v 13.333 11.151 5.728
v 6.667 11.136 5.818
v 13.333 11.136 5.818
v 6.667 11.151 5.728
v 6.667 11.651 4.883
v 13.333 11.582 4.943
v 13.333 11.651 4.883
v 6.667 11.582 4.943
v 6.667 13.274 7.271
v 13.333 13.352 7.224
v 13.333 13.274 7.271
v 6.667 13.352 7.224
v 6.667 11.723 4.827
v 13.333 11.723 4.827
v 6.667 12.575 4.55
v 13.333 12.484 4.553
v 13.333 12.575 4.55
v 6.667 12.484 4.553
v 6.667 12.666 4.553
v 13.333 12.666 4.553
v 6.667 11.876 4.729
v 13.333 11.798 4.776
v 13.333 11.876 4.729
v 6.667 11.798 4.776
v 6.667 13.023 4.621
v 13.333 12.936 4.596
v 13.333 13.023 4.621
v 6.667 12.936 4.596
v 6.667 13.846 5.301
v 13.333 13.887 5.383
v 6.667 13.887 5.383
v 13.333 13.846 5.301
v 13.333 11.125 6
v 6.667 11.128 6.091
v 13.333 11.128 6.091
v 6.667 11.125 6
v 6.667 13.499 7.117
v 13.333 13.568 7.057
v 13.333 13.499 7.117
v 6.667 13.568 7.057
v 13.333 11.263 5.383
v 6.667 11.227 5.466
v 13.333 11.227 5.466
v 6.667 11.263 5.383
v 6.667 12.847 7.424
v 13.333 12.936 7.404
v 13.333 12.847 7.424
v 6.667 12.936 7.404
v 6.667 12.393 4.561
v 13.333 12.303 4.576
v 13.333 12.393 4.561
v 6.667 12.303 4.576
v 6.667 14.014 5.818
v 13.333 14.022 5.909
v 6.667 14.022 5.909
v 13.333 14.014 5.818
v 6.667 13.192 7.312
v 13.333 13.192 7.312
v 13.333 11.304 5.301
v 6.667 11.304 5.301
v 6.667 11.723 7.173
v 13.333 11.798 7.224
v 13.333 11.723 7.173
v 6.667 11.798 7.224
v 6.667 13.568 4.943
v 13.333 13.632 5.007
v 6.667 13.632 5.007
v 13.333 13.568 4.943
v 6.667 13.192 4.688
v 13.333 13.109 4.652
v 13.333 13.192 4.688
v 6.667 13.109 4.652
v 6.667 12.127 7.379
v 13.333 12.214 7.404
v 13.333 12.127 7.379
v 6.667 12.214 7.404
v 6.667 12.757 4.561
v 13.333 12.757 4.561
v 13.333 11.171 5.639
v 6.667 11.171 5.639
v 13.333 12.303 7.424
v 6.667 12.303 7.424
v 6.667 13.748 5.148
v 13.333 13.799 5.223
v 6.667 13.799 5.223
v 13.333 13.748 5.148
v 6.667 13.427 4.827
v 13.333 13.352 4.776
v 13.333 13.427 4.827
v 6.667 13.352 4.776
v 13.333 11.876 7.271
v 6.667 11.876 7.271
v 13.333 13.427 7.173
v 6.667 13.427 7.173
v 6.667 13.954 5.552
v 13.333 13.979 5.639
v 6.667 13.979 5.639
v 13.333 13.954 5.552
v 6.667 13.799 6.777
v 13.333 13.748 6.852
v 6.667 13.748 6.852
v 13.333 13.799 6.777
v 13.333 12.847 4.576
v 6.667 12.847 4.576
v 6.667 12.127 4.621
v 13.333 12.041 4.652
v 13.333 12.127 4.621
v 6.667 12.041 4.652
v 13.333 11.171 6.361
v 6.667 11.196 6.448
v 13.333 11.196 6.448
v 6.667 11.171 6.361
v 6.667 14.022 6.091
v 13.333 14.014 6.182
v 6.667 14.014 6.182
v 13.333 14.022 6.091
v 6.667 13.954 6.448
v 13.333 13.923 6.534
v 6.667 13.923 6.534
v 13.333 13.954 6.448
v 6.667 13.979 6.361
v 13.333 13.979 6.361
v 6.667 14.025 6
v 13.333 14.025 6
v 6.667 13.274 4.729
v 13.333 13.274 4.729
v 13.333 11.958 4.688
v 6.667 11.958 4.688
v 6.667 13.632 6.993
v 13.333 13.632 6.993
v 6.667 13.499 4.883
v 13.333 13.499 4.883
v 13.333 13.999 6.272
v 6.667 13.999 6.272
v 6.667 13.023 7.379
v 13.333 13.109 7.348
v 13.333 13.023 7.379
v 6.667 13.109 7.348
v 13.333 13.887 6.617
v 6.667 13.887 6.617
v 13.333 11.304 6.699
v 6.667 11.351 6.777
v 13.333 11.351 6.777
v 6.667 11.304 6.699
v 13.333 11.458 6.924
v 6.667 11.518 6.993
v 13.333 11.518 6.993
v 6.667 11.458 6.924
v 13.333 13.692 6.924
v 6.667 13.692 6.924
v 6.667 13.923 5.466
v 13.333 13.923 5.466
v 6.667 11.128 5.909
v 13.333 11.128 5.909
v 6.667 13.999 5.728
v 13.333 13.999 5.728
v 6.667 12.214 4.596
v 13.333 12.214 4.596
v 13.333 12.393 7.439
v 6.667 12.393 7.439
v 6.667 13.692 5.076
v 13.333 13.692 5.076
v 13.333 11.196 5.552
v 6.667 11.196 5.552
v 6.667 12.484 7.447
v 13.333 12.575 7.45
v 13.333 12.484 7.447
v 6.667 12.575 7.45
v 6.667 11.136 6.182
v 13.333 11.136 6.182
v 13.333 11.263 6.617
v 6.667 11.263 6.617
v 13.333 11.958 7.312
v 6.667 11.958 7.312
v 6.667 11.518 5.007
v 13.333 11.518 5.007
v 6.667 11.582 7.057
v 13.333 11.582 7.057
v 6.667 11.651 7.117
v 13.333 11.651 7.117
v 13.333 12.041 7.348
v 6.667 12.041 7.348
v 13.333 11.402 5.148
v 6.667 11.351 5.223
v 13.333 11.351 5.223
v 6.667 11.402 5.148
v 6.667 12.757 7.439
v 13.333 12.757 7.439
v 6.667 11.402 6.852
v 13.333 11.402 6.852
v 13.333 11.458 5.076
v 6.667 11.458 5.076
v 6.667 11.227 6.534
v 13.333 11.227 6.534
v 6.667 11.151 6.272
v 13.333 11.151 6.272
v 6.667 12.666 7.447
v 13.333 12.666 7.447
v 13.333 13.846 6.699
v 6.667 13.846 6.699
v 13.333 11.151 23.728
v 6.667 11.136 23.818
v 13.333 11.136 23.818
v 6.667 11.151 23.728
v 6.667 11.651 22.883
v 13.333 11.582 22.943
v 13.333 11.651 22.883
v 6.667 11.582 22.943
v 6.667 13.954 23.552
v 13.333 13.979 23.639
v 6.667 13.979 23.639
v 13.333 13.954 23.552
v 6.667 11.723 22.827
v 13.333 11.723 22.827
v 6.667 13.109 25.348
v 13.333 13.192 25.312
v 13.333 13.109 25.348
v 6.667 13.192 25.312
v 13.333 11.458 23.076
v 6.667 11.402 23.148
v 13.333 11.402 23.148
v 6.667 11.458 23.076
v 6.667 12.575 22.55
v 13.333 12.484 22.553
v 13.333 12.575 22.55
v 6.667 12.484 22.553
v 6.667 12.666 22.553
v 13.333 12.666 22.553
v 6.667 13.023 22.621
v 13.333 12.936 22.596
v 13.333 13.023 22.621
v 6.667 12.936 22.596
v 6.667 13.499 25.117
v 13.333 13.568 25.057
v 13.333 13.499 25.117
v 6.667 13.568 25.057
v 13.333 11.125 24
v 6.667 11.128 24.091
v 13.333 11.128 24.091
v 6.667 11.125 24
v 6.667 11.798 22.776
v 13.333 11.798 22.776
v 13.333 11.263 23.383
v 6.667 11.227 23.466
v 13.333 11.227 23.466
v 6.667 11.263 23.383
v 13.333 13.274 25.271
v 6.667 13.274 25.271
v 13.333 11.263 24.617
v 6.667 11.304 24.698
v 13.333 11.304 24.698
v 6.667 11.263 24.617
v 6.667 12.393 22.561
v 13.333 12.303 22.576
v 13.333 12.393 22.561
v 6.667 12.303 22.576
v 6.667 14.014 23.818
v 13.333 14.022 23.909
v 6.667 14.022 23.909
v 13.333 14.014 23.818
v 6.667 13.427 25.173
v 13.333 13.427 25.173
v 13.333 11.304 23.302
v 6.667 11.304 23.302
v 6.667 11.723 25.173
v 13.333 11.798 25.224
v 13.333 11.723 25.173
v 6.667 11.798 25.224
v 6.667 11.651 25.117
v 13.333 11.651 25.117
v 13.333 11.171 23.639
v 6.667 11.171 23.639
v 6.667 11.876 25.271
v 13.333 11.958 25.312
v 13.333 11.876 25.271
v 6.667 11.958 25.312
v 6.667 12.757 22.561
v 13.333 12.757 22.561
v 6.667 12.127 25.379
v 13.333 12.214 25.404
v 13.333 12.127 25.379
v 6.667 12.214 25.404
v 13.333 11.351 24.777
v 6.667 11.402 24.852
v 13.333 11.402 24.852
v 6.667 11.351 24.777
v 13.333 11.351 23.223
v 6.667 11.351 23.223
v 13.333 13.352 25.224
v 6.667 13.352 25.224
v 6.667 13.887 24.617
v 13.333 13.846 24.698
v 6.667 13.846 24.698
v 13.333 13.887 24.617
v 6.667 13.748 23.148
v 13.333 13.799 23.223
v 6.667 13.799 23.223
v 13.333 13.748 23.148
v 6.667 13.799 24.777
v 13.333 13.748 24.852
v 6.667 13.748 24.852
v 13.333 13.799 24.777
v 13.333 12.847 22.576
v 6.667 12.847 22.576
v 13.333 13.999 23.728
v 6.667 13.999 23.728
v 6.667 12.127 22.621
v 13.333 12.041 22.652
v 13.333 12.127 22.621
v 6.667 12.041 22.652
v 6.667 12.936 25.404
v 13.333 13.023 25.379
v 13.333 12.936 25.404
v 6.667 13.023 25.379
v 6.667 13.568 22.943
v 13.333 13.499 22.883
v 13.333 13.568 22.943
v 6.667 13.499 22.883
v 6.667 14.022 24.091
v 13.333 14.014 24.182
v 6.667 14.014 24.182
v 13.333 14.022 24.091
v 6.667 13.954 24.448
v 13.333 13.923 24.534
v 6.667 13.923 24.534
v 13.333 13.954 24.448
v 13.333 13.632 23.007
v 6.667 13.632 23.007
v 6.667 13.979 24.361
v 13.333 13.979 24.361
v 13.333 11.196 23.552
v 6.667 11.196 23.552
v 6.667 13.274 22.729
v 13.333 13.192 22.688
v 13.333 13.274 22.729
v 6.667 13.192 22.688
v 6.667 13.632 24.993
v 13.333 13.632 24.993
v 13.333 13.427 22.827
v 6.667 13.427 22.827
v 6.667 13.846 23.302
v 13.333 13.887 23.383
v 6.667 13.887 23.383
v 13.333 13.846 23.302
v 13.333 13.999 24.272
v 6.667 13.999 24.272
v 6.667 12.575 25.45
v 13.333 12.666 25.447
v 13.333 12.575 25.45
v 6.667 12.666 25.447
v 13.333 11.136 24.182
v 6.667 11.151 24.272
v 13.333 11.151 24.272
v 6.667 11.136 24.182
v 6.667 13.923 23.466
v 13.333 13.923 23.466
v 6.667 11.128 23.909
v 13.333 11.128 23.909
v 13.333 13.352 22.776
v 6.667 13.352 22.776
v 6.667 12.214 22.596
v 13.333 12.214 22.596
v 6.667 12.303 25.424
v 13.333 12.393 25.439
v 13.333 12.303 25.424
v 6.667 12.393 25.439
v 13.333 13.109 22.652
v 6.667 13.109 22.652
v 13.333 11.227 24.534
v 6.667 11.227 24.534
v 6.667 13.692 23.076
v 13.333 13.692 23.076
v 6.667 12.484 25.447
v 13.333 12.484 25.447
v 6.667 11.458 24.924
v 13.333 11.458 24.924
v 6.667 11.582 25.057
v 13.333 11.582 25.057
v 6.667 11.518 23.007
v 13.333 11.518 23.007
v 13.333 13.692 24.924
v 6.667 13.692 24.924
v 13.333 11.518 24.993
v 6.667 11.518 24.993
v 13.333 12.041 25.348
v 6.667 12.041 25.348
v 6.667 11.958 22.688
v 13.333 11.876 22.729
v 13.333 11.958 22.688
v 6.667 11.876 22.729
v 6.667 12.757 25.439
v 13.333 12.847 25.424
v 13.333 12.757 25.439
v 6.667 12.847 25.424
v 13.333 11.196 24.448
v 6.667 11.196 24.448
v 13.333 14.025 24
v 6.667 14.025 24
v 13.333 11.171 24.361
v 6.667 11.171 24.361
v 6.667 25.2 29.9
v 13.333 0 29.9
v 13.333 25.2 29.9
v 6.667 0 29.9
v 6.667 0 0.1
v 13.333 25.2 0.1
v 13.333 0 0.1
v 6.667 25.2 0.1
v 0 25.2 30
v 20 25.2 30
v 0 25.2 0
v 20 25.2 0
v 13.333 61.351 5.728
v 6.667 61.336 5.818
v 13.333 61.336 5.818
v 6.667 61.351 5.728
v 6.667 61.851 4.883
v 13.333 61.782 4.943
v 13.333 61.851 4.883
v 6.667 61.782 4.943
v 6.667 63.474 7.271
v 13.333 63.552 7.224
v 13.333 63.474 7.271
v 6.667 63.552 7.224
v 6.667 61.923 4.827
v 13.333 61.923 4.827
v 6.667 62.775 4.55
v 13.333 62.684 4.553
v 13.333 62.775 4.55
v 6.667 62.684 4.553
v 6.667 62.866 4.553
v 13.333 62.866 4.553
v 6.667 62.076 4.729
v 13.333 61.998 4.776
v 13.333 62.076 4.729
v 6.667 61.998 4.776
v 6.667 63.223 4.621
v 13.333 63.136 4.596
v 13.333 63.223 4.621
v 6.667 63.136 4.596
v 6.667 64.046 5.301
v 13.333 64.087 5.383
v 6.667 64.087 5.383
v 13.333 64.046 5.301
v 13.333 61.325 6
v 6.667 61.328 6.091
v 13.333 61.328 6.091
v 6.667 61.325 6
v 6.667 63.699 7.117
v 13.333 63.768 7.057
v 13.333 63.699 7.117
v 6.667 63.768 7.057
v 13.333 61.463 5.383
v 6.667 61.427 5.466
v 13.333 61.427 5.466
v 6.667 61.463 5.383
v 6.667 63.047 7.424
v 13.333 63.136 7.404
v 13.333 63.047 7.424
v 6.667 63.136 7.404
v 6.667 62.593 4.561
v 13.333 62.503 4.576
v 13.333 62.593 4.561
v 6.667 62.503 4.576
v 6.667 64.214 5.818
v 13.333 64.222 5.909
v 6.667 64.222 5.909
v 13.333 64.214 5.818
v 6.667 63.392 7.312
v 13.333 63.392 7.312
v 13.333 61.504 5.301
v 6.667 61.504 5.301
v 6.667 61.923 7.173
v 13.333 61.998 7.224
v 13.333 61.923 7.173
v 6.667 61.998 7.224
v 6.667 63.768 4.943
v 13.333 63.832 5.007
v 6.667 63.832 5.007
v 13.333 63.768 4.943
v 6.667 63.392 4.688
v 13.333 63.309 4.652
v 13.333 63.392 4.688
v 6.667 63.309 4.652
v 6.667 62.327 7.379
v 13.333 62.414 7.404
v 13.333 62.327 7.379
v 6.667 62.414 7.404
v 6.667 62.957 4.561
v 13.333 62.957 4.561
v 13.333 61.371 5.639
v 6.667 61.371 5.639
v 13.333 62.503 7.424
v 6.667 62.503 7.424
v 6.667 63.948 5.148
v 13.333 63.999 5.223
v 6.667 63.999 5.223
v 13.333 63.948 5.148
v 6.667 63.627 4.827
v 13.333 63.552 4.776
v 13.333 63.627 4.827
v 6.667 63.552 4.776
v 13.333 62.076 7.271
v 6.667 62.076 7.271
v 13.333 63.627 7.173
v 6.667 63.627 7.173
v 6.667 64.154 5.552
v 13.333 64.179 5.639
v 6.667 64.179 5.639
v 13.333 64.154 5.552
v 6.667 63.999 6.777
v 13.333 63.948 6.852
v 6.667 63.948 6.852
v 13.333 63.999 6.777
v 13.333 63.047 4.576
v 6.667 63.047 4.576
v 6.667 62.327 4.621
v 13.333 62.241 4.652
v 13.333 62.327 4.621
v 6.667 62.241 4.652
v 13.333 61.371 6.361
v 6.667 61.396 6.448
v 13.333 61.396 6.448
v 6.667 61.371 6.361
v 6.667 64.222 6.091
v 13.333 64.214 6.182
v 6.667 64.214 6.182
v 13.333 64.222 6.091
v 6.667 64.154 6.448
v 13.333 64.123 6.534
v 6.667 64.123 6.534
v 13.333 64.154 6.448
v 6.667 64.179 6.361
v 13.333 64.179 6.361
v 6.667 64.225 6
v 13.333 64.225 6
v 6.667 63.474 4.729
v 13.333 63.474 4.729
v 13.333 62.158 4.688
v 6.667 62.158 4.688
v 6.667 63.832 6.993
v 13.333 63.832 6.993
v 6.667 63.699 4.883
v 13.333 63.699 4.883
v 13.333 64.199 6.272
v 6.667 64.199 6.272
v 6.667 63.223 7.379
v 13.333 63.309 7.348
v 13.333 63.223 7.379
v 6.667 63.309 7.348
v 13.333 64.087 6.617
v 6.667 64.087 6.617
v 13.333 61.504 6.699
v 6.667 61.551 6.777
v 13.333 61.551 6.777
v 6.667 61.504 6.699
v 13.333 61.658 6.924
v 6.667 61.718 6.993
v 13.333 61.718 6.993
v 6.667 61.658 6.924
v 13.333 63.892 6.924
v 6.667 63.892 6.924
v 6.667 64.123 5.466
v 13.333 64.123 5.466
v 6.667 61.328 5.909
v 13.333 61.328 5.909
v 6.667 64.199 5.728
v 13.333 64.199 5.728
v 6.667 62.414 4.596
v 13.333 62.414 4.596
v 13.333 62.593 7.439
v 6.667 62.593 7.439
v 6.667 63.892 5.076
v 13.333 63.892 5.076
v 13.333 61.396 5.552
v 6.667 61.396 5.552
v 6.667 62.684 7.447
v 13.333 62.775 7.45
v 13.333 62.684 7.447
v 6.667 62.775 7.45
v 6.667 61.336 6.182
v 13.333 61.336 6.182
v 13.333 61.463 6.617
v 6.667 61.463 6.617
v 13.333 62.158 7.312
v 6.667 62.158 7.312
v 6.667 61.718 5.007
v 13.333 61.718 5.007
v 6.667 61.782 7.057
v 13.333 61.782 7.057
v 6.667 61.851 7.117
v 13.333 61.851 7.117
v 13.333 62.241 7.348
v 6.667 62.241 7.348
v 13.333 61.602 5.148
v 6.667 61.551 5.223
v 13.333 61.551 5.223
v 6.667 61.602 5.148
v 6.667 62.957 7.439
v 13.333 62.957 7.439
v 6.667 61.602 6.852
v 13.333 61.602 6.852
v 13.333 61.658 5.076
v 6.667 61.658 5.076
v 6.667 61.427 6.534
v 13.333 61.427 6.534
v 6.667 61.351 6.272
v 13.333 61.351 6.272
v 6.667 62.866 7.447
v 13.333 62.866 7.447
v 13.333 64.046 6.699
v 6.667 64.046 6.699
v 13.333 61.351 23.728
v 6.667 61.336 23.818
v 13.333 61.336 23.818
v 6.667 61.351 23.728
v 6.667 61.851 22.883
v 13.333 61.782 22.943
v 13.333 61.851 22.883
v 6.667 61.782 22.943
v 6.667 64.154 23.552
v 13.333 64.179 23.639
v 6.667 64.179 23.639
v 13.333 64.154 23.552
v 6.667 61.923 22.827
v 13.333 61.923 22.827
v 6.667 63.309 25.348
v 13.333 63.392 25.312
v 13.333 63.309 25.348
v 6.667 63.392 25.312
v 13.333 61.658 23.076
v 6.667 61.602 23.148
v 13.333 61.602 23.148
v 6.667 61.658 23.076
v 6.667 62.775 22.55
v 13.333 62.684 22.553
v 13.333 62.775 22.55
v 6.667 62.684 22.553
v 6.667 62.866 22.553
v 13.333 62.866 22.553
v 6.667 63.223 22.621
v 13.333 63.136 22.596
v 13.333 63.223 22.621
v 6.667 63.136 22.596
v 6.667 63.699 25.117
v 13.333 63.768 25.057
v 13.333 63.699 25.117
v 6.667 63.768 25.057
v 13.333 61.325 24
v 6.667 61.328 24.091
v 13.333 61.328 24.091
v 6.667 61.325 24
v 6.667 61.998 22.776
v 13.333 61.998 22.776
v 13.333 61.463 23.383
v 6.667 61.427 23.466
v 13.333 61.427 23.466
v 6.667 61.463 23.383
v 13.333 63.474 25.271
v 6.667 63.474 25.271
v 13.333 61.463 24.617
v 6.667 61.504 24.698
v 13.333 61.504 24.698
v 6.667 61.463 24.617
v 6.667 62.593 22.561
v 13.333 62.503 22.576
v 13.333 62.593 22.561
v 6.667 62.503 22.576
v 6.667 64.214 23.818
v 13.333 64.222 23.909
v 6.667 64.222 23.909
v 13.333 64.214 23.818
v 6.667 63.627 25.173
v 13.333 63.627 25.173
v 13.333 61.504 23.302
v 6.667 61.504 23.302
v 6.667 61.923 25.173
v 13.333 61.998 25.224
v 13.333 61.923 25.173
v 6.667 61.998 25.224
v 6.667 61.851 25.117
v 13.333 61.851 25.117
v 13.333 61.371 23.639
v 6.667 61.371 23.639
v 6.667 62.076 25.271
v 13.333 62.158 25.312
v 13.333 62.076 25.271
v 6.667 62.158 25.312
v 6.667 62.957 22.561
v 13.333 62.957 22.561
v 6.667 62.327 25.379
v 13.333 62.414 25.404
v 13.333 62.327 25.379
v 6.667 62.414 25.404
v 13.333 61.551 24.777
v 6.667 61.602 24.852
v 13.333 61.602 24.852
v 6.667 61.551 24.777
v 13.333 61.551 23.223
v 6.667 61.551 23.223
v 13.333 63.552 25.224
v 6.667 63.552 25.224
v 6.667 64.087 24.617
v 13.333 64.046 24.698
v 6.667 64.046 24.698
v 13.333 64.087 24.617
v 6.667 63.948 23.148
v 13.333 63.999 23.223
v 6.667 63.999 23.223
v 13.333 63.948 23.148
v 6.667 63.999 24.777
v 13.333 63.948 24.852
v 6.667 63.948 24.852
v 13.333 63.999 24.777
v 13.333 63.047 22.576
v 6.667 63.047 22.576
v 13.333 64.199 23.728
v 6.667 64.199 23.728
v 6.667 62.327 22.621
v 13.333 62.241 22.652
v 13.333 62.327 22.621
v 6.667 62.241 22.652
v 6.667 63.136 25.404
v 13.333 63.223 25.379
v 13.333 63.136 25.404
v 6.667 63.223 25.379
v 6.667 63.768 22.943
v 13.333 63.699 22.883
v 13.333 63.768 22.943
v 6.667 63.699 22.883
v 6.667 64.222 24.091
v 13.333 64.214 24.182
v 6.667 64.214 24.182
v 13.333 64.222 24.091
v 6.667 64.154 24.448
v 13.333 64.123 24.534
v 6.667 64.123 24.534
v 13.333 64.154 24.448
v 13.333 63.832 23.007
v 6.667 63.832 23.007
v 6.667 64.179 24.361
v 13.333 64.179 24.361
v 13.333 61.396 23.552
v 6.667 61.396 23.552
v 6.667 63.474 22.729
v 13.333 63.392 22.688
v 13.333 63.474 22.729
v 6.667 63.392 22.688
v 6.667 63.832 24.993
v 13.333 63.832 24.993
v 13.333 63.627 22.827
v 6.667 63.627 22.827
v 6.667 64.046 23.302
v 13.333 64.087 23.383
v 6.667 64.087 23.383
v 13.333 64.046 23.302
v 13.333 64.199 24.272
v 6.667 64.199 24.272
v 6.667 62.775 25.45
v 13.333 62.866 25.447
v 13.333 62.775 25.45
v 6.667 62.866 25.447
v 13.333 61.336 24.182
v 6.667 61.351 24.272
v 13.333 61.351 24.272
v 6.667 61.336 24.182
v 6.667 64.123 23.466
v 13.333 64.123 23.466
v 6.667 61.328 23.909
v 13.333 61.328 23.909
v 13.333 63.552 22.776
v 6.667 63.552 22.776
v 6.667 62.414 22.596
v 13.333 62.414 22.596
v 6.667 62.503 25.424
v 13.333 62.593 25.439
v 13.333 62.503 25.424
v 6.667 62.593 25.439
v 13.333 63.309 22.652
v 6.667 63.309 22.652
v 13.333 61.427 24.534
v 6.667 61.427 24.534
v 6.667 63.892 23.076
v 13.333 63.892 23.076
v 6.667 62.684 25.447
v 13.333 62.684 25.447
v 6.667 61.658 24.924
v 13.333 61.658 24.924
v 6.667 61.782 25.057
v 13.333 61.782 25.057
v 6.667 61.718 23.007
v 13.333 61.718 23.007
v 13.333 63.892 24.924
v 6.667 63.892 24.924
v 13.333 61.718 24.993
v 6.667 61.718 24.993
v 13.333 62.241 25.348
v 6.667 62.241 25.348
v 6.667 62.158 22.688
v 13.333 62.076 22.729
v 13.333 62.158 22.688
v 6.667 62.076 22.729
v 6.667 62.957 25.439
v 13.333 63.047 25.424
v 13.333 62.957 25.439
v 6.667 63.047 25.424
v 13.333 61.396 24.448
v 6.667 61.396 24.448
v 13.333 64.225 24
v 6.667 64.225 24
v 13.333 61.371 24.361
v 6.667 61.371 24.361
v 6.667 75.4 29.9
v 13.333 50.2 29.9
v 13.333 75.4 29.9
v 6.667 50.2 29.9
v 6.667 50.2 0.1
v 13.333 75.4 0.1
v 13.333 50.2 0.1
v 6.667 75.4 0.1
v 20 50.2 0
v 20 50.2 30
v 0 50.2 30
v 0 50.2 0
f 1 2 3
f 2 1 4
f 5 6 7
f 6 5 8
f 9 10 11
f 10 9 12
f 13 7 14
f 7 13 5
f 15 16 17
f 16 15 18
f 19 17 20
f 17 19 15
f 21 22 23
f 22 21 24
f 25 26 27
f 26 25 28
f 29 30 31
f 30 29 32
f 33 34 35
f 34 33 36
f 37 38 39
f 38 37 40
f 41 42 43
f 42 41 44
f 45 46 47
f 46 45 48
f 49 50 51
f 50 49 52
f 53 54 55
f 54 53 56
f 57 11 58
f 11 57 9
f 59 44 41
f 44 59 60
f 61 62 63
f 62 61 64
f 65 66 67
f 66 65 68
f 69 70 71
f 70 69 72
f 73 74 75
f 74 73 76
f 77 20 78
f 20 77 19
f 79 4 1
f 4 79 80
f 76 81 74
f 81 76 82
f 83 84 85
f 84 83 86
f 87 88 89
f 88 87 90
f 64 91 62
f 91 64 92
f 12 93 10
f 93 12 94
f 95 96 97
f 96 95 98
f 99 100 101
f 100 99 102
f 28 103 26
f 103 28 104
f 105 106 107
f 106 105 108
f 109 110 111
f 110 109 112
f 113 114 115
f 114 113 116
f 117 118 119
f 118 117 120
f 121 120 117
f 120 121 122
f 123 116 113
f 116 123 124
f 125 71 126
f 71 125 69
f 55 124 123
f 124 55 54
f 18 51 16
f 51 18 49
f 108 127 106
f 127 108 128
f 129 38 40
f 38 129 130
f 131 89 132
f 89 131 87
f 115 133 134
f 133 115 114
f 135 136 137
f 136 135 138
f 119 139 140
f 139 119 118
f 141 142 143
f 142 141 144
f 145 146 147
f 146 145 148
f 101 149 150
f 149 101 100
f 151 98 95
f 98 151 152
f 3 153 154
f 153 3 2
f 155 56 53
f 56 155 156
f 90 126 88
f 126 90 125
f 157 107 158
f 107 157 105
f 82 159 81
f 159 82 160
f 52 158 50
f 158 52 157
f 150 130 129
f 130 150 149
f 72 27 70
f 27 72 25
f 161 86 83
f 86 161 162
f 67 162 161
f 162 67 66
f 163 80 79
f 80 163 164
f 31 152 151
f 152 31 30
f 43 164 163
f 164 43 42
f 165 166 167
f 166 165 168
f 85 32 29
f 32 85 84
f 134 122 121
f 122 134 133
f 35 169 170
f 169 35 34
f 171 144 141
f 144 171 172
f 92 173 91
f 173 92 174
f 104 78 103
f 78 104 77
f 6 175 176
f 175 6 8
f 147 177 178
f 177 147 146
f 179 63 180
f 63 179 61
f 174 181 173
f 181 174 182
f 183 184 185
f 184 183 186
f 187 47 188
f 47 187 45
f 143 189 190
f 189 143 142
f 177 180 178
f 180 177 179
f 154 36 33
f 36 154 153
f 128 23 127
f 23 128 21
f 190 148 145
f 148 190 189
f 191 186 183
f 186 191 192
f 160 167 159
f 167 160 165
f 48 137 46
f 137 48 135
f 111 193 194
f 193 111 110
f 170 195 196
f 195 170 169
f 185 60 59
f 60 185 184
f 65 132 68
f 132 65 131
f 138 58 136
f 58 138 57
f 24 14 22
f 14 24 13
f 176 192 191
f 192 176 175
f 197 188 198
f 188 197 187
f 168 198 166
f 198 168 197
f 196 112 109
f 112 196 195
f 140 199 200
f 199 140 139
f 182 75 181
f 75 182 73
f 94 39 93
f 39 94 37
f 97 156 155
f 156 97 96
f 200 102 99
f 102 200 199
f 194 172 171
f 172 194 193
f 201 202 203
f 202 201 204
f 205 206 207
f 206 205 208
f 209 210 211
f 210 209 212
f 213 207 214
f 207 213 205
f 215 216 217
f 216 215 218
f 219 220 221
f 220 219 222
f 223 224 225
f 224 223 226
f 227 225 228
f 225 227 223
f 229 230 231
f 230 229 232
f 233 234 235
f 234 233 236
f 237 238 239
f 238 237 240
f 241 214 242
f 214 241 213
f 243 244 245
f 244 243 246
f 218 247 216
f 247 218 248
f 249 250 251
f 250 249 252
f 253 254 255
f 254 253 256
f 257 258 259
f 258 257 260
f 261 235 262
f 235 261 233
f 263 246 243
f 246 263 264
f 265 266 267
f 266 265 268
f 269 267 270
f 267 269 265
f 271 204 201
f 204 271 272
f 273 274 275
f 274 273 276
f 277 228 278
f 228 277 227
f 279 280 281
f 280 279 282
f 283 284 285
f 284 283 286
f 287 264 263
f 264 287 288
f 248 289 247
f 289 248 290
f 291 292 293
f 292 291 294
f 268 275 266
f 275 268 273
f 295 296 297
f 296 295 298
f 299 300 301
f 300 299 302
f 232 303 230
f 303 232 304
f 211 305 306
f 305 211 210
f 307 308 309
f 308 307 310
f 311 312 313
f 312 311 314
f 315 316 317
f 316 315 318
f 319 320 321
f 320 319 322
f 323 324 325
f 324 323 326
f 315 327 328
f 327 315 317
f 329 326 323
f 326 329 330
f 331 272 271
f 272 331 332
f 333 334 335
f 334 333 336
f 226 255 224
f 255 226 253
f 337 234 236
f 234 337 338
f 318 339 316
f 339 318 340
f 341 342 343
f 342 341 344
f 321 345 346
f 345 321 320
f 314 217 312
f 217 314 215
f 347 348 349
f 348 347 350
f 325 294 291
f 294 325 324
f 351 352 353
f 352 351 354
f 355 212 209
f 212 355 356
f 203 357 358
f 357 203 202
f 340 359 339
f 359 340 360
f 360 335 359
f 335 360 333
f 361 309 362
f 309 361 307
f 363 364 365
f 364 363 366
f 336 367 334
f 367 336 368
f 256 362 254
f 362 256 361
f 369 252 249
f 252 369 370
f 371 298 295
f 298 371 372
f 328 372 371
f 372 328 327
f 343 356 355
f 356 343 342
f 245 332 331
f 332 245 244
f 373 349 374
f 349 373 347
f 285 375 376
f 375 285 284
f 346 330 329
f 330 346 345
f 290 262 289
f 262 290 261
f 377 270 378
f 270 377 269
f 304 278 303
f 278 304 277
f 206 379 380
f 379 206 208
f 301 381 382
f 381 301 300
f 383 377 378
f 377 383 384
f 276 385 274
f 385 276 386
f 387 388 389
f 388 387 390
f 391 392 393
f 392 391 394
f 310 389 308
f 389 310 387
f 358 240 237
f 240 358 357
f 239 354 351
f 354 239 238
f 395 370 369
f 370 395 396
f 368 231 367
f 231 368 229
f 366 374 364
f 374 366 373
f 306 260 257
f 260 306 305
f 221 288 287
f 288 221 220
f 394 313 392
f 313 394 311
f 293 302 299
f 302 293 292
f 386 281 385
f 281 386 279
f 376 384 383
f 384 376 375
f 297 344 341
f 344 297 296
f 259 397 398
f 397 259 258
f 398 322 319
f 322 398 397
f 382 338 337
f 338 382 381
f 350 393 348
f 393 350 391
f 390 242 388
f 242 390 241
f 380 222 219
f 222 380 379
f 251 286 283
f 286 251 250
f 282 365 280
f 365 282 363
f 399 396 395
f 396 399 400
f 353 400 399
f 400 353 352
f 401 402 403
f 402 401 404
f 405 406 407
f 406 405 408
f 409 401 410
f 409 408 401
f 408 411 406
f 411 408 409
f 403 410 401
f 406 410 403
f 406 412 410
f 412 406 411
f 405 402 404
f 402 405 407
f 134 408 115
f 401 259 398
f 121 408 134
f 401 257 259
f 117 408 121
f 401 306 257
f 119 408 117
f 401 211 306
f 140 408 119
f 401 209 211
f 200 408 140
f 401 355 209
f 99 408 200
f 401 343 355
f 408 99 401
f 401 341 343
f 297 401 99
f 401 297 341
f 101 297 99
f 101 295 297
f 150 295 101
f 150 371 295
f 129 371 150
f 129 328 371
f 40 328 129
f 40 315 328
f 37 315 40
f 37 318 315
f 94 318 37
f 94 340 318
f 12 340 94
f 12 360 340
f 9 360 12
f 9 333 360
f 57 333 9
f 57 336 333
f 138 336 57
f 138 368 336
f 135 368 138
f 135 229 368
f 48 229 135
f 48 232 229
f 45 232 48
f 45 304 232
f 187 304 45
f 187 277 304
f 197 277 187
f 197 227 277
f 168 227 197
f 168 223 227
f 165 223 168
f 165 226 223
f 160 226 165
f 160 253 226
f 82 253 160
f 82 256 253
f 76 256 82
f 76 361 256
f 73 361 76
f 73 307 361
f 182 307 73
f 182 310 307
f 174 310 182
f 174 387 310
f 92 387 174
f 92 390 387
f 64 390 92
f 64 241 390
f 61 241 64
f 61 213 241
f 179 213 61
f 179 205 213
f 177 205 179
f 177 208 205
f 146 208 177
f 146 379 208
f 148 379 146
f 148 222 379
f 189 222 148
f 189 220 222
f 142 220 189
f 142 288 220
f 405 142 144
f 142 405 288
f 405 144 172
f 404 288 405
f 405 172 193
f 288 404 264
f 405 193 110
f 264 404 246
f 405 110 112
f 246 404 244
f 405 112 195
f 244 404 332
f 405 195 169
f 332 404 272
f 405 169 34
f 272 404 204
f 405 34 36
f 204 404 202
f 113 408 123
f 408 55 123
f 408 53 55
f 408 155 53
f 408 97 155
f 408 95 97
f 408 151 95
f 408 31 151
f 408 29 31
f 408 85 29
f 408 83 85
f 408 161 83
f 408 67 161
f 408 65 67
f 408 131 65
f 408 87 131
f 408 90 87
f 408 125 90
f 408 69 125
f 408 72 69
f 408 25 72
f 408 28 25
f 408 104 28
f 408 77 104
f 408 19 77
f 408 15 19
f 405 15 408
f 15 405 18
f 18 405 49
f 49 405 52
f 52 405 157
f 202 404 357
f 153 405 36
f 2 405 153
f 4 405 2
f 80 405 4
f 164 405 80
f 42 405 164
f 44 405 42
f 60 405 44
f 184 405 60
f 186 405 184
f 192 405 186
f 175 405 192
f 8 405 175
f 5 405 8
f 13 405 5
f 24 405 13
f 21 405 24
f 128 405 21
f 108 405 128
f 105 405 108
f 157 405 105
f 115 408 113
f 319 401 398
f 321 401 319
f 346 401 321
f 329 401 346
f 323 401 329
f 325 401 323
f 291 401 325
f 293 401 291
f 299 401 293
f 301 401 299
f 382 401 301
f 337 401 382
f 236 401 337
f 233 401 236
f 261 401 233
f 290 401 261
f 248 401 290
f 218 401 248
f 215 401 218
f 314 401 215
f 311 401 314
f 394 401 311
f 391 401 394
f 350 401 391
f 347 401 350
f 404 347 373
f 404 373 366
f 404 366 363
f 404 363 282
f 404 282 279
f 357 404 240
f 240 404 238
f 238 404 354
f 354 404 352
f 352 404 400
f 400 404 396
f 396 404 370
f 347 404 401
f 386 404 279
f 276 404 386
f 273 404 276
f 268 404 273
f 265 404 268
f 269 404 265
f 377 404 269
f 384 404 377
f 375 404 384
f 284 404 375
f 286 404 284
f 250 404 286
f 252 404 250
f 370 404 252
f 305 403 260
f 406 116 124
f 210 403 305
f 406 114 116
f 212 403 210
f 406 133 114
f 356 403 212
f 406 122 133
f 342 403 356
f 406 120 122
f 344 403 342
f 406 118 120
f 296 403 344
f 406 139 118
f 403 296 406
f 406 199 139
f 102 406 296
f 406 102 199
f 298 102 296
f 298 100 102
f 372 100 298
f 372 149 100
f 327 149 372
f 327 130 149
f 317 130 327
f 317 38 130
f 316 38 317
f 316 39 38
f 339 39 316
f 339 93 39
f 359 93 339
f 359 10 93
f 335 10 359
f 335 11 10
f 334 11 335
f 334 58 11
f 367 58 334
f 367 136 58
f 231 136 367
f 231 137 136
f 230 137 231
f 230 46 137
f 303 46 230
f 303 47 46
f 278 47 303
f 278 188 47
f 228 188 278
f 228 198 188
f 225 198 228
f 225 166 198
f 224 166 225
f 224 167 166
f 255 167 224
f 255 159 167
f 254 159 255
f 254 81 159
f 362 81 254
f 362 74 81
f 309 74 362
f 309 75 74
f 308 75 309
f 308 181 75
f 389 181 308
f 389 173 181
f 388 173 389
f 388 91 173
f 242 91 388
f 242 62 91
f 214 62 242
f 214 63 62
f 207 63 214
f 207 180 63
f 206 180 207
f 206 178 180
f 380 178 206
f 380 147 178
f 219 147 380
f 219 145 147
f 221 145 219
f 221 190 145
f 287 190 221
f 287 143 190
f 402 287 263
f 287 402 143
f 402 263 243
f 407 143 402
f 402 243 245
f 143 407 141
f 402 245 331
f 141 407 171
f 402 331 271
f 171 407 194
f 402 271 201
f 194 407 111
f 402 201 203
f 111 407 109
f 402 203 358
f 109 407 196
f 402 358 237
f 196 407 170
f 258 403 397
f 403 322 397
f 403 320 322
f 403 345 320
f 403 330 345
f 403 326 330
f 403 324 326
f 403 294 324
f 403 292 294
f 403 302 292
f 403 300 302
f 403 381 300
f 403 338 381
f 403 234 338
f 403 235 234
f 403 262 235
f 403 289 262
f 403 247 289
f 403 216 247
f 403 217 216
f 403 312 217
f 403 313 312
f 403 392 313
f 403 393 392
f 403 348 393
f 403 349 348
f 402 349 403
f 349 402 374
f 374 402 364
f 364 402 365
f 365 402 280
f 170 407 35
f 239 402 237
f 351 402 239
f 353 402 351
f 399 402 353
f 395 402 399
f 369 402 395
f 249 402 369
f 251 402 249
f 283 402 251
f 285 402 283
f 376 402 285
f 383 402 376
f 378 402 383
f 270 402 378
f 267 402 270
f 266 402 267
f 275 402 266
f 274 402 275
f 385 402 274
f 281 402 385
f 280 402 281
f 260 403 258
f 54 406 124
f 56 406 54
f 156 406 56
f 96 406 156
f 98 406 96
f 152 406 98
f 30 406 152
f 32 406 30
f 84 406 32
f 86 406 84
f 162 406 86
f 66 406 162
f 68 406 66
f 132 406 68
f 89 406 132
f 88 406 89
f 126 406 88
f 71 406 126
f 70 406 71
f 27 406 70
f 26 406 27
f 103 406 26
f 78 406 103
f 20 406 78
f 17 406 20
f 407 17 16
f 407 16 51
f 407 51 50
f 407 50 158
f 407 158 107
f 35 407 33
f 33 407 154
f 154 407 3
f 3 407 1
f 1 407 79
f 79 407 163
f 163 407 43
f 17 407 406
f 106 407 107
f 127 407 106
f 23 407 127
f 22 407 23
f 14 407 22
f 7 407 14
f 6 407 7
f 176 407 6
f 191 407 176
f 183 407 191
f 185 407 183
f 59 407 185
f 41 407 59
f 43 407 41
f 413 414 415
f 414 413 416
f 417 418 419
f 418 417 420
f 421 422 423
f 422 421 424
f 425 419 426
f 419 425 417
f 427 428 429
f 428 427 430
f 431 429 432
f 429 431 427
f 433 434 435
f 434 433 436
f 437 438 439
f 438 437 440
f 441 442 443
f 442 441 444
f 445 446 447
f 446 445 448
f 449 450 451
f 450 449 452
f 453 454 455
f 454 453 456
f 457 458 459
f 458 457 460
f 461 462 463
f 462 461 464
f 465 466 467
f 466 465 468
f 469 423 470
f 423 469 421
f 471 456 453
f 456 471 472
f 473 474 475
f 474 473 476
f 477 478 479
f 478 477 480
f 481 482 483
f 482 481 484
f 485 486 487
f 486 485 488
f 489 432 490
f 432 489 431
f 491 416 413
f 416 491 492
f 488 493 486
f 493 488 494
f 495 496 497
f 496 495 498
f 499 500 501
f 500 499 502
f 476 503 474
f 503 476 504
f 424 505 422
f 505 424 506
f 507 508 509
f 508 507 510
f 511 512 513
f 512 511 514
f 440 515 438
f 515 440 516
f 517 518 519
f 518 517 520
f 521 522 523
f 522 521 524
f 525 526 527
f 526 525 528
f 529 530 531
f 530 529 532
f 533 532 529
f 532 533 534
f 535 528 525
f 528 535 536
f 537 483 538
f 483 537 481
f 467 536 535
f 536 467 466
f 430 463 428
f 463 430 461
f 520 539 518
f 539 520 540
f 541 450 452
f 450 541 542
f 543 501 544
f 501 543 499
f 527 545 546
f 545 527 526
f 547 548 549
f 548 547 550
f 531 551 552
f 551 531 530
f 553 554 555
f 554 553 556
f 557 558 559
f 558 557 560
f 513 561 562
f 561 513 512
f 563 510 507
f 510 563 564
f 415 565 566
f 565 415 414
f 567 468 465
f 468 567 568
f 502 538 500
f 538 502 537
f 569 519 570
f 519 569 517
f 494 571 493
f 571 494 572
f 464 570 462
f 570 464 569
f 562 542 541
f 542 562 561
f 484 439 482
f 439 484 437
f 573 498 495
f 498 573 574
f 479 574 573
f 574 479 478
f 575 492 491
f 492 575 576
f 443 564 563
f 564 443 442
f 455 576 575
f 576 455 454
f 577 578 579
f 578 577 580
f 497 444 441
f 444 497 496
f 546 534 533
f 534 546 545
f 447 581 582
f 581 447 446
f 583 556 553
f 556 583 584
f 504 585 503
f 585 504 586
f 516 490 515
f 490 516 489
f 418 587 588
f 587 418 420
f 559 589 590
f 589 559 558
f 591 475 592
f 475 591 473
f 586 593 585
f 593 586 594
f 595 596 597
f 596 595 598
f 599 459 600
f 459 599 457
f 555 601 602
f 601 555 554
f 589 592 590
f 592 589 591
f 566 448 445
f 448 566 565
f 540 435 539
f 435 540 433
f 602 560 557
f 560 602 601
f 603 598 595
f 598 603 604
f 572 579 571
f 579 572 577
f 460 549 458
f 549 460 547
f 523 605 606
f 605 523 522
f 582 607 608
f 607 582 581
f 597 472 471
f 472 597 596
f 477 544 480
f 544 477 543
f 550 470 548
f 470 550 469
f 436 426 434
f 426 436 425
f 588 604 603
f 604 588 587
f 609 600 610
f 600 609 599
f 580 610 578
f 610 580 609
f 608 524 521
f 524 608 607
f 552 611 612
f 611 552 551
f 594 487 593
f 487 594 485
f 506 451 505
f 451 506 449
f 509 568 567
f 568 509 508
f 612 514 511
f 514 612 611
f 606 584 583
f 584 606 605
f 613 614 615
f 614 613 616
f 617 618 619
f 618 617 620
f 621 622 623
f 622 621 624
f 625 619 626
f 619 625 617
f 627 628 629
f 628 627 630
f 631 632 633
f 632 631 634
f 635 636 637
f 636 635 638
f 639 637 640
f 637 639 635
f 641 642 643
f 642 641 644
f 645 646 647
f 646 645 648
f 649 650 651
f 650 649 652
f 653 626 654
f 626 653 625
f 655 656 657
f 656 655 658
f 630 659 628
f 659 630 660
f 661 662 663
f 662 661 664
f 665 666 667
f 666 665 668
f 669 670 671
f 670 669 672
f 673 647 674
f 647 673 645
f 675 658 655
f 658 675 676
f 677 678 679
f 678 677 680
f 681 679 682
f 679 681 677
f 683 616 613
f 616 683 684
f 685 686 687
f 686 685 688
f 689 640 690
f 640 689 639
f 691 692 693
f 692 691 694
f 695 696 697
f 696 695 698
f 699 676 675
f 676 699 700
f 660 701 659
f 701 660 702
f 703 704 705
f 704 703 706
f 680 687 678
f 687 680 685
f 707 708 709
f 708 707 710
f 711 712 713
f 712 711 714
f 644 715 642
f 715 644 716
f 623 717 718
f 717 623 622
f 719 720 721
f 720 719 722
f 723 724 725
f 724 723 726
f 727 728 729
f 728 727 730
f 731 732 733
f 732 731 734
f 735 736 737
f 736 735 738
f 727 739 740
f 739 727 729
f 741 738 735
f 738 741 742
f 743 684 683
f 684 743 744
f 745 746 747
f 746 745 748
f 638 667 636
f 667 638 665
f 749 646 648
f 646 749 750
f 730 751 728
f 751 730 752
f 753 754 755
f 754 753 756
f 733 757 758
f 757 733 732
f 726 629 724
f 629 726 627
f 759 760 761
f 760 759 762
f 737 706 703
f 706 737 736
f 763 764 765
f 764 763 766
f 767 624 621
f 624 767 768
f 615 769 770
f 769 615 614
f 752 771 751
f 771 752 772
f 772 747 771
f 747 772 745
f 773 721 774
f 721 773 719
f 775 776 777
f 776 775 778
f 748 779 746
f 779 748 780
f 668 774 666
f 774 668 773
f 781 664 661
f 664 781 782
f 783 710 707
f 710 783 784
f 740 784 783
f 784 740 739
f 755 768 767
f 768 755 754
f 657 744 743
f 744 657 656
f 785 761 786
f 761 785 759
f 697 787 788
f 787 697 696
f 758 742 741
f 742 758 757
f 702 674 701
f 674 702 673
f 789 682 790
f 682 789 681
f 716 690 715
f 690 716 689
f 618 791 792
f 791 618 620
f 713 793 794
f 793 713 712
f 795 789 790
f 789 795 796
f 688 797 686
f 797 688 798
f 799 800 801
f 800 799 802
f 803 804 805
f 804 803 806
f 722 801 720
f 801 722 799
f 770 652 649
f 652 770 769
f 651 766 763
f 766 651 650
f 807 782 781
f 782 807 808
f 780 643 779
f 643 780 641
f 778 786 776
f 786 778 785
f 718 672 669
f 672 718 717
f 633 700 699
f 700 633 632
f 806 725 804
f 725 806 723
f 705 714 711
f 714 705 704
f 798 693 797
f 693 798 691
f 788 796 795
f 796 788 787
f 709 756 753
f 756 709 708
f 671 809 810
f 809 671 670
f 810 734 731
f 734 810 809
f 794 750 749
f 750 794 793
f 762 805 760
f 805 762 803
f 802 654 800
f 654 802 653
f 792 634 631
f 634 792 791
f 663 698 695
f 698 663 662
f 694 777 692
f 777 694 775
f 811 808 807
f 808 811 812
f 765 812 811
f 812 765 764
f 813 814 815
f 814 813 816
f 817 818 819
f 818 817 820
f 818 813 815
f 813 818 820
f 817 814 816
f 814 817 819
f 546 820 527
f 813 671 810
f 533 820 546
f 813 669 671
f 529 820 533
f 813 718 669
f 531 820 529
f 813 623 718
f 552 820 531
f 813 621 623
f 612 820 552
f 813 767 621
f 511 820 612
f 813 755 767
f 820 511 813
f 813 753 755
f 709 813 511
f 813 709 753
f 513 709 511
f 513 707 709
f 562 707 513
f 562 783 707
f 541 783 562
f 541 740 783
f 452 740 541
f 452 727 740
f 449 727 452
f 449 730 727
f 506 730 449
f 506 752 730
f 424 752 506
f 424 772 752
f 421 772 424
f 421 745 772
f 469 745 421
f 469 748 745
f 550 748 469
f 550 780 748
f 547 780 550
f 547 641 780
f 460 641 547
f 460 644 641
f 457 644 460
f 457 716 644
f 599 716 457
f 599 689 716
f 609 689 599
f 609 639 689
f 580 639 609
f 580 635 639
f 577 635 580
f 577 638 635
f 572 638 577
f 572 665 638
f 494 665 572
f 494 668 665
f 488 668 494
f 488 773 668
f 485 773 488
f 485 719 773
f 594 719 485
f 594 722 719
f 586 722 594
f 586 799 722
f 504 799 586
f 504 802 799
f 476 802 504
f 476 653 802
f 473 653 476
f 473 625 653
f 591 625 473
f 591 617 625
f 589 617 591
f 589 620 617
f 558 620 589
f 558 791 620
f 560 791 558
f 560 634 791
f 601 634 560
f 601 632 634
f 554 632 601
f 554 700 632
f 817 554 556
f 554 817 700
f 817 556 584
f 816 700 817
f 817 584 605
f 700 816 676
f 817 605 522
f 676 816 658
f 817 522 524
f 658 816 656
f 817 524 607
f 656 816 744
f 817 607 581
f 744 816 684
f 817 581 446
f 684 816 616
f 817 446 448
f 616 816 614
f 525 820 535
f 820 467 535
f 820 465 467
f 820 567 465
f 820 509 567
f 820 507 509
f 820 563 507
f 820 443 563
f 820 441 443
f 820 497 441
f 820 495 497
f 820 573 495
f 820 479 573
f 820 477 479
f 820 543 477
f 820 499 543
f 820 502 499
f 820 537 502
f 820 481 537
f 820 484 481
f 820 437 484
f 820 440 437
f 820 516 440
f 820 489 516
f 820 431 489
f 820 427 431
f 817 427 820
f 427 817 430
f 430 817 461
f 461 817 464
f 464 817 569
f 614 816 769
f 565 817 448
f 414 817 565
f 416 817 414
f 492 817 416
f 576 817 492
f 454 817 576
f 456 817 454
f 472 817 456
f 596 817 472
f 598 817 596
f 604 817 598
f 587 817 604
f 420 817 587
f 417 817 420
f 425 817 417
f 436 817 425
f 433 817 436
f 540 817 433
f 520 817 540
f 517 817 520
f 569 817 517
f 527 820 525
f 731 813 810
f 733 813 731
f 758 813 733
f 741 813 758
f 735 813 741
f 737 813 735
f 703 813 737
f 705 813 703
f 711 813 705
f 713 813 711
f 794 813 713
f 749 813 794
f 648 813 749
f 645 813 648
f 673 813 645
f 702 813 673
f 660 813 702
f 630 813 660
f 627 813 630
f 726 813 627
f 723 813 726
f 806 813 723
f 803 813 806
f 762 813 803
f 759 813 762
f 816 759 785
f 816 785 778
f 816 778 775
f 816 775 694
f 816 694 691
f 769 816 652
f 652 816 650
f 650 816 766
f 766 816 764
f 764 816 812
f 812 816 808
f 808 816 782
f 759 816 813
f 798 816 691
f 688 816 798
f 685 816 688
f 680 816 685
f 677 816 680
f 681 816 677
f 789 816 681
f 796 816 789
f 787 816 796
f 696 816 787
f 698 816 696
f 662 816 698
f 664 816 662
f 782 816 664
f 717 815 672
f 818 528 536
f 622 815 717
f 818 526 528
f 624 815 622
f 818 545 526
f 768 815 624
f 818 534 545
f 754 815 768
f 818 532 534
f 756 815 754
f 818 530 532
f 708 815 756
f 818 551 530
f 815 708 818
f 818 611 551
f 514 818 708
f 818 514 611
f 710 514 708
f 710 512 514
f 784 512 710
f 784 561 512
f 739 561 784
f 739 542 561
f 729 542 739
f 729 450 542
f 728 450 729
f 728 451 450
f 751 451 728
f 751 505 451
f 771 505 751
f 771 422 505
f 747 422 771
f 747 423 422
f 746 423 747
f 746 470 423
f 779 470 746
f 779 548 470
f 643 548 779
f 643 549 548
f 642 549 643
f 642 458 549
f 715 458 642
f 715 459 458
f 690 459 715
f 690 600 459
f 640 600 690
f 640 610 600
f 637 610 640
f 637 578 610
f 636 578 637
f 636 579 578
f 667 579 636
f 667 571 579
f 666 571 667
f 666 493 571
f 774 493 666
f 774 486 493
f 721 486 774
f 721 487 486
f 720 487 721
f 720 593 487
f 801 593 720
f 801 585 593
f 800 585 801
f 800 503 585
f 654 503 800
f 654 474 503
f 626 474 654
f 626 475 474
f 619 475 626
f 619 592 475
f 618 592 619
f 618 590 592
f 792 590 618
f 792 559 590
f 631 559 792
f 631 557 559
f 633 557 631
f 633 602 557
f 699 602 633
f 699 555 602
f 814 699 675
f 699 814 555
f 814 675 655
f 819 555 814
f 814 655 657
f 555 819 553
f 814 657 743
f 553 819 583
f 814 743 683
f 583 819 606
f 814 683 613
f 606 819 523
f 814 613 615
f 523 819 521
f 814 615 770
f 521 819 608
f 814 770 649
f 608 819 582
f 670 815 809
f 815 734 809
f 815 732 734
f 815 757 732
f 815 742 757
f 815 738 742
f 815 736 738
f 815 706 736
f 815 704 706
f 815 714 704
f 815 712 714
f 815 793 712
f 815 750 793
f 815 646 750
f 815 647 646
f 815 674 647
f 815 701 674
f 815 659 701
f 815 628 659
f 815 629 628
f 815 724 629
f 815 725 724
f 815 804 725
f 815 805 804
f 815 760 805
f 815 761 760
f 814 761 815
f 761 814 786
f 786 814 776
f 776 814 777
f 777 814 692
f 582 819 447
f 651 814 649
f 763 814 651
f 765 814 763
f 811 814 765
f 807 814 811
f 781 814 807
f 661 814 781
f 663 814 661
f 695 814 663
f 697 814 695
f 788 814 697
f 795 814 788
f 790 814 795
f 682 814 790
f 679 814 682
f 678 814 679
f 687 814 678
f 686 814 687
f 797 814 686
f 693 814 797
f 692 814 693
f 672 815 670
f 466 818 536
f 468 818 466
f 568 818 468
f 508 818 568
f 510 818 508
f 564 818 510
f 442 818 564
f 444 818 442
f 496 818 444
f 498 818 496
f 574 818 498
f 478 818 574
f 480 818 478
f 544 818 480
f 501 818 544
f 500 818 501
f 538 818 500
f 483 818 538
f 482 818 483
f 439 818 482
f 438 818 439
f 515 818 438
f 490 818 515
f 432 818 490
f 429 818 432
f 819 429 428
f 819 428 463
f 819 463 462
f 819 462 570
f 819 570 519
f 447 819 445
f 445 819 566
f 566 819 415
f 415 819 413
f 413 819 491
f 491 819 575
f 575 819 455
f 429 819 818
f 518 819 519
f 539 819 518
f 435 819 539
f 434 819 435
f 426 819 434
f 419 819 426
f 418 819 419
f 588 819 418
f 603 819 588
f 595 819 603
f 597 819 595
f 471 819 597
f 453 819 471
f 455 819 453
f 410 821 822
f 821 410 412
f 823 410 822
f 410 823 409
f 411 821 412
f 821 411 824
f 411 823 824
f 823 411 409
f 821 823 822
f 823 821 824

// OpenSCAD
// file: ../frame_bar_extension_25mm_base.scad
// Frame Bar Extension
// This extension piece connects two frame bars with a configurable middle section
include <../../shared_helper.scad>;

revision = 1.2;

// TODO: Add in M4 Alternative
// TODO: Add in NUT Alternatives for M4 and M3

// Adjustable values
extension_length = 25.0;                  // Length of the extension middle section (adjustable)

hole_diameter = m3_hole_diameter;         // Using M3 holes from shared_helper

countersunk_hole_diameter = m3_head_diameter;
countersunk_hole_depth = m3_head_depth + 0.5;

knurled_insert_diameter = m3_type1_knurled_insert_diameter;
knurled_insert_depth = m3_type1_knurled_insert_depth;

// Frame bar connector dimensions
connector_width = 20.0;                   // Width of the frame bar connector
connector_height = 30.0;                  // Height of the frame bar connector
mount_depth = 25.0;                       // Depth of the connector interfaces

// Hole specifications
hole_top_margin = 3.7 + (2.3);            // Distance from top edge to first hole center
hole_spacing = 13.4;                      // Distance between hole centers
hole_front_margin = 10.2 - (2.3) + 4.675; // Distance from front edge to hole centers

// Tolerance for better fit
fit_tolerance = 0.2;                      // Tolerance for male connector to fit into female

// Derived values
mounting_width_void = connector_width / 3.0;

module mounting_holes() {
  translate([0, hole_front_margin, hole_top_margin]) {
    rotate([0, 90, 0]) {
      cylinder(d=hole_diameter, h=100.00);
    }
  }

  translate([0, hole_front_margin, connector_height - hole_top_margin]) {
    rotate([0, 90, 0]) {
      cylinder(d=hole_diameter, h=100.00);
    }
  }
}

module countersunk_holes() {
  translate([0, hole_front_margin, hole_top_margin]) {
    rotate([0, 90, 0]) {
      cylinder(d=countersunk_hole_diameter, h=countersunk_hole_depth);
    }
  }

  translate([0, hole_front_margin, connector_height - hole_top_margin]) {
    rotate([0, 90, 0]) {
      cylinder(d=countersunk_hole_diameter, h=countersunk_hole_depth);
    }
  }
}

module heat_insert_holes() {
  translate([(connector_width - knurled_insert_depth), hole_front_margin, hole_top_margin]) {
    rotate([0, 90, 0]) {
      cylinder(d=knurled_insert_diameter, h=knurled_insert_depth);
    }
  }

  translate([(connector_width - knurled_insert_depth), hole_front_margin, connector_height - hole_top_margin]) {
    rotate([0, 90, 0]) {
      cylinder(d=knurled_insert_diameter, h=knurled_insert_depth);
    }
  }
}

module female_mount() {
  difference() {
    cube([connector_width, mount_depth, connector_height]);
    // Mounting space
    translate([mounting_width_void, 0, 0]) {
      cube([mounting_width_void, mount_depth, connector_height]);
    }

    mounting_holes();
    countersunk_holes();
    heat_insert_holes();
  }
}

module male_mount() {
  difference() {
    // Apply tolerance to the male connector width and height
    translate([fit_tolerance/2, 0, fit_tolerance/2]) {
      cube([connector_width - fit_tolerance, mount_depth + fit_tolerance, connector_height - fit_tolerance]);
    }

    // Mounting spaces - adjusted for the new position
    translate([fit_tolerance/2, 0, fit_tolerance/2]) {
      cube([mounting_width_void - fit_tolerance/2, mount_depth + fit_tolerance, connector_height - fit_tolerance]);
    }

    translate([connector_width - mounting_width_void, 0, fit_tolerance/2]) {
      cube([mounting_width_void - fit_tolerance/2, mount_depth + fit_tolerance, connector_height - fit_tolerance]);
    }

    // Holes - keep original positions to maintain alignment
    mounting_holes();
  }
}

module extension() {
  cube([connector_width, extension_length, connector_height]);
}
// main file
// Frame Bar Extension
// This extension piece connects two frame bars with a configurable middle section
include <../frame_bar_extension_25mm_base.scad>;

revision = 1.2;

module frame_bar_extension() {
  union() {
    // female_mount();
    male_mount();

    translate([0, mount_depth + fit_tolerance, 0]) {
      extension();
    }

    translate([0, mount_depth + fit_tolerance + extension_length, 0]) {
      male_mount();
    }
  }
}

// Render the extension piece
frame_bar_extension();
